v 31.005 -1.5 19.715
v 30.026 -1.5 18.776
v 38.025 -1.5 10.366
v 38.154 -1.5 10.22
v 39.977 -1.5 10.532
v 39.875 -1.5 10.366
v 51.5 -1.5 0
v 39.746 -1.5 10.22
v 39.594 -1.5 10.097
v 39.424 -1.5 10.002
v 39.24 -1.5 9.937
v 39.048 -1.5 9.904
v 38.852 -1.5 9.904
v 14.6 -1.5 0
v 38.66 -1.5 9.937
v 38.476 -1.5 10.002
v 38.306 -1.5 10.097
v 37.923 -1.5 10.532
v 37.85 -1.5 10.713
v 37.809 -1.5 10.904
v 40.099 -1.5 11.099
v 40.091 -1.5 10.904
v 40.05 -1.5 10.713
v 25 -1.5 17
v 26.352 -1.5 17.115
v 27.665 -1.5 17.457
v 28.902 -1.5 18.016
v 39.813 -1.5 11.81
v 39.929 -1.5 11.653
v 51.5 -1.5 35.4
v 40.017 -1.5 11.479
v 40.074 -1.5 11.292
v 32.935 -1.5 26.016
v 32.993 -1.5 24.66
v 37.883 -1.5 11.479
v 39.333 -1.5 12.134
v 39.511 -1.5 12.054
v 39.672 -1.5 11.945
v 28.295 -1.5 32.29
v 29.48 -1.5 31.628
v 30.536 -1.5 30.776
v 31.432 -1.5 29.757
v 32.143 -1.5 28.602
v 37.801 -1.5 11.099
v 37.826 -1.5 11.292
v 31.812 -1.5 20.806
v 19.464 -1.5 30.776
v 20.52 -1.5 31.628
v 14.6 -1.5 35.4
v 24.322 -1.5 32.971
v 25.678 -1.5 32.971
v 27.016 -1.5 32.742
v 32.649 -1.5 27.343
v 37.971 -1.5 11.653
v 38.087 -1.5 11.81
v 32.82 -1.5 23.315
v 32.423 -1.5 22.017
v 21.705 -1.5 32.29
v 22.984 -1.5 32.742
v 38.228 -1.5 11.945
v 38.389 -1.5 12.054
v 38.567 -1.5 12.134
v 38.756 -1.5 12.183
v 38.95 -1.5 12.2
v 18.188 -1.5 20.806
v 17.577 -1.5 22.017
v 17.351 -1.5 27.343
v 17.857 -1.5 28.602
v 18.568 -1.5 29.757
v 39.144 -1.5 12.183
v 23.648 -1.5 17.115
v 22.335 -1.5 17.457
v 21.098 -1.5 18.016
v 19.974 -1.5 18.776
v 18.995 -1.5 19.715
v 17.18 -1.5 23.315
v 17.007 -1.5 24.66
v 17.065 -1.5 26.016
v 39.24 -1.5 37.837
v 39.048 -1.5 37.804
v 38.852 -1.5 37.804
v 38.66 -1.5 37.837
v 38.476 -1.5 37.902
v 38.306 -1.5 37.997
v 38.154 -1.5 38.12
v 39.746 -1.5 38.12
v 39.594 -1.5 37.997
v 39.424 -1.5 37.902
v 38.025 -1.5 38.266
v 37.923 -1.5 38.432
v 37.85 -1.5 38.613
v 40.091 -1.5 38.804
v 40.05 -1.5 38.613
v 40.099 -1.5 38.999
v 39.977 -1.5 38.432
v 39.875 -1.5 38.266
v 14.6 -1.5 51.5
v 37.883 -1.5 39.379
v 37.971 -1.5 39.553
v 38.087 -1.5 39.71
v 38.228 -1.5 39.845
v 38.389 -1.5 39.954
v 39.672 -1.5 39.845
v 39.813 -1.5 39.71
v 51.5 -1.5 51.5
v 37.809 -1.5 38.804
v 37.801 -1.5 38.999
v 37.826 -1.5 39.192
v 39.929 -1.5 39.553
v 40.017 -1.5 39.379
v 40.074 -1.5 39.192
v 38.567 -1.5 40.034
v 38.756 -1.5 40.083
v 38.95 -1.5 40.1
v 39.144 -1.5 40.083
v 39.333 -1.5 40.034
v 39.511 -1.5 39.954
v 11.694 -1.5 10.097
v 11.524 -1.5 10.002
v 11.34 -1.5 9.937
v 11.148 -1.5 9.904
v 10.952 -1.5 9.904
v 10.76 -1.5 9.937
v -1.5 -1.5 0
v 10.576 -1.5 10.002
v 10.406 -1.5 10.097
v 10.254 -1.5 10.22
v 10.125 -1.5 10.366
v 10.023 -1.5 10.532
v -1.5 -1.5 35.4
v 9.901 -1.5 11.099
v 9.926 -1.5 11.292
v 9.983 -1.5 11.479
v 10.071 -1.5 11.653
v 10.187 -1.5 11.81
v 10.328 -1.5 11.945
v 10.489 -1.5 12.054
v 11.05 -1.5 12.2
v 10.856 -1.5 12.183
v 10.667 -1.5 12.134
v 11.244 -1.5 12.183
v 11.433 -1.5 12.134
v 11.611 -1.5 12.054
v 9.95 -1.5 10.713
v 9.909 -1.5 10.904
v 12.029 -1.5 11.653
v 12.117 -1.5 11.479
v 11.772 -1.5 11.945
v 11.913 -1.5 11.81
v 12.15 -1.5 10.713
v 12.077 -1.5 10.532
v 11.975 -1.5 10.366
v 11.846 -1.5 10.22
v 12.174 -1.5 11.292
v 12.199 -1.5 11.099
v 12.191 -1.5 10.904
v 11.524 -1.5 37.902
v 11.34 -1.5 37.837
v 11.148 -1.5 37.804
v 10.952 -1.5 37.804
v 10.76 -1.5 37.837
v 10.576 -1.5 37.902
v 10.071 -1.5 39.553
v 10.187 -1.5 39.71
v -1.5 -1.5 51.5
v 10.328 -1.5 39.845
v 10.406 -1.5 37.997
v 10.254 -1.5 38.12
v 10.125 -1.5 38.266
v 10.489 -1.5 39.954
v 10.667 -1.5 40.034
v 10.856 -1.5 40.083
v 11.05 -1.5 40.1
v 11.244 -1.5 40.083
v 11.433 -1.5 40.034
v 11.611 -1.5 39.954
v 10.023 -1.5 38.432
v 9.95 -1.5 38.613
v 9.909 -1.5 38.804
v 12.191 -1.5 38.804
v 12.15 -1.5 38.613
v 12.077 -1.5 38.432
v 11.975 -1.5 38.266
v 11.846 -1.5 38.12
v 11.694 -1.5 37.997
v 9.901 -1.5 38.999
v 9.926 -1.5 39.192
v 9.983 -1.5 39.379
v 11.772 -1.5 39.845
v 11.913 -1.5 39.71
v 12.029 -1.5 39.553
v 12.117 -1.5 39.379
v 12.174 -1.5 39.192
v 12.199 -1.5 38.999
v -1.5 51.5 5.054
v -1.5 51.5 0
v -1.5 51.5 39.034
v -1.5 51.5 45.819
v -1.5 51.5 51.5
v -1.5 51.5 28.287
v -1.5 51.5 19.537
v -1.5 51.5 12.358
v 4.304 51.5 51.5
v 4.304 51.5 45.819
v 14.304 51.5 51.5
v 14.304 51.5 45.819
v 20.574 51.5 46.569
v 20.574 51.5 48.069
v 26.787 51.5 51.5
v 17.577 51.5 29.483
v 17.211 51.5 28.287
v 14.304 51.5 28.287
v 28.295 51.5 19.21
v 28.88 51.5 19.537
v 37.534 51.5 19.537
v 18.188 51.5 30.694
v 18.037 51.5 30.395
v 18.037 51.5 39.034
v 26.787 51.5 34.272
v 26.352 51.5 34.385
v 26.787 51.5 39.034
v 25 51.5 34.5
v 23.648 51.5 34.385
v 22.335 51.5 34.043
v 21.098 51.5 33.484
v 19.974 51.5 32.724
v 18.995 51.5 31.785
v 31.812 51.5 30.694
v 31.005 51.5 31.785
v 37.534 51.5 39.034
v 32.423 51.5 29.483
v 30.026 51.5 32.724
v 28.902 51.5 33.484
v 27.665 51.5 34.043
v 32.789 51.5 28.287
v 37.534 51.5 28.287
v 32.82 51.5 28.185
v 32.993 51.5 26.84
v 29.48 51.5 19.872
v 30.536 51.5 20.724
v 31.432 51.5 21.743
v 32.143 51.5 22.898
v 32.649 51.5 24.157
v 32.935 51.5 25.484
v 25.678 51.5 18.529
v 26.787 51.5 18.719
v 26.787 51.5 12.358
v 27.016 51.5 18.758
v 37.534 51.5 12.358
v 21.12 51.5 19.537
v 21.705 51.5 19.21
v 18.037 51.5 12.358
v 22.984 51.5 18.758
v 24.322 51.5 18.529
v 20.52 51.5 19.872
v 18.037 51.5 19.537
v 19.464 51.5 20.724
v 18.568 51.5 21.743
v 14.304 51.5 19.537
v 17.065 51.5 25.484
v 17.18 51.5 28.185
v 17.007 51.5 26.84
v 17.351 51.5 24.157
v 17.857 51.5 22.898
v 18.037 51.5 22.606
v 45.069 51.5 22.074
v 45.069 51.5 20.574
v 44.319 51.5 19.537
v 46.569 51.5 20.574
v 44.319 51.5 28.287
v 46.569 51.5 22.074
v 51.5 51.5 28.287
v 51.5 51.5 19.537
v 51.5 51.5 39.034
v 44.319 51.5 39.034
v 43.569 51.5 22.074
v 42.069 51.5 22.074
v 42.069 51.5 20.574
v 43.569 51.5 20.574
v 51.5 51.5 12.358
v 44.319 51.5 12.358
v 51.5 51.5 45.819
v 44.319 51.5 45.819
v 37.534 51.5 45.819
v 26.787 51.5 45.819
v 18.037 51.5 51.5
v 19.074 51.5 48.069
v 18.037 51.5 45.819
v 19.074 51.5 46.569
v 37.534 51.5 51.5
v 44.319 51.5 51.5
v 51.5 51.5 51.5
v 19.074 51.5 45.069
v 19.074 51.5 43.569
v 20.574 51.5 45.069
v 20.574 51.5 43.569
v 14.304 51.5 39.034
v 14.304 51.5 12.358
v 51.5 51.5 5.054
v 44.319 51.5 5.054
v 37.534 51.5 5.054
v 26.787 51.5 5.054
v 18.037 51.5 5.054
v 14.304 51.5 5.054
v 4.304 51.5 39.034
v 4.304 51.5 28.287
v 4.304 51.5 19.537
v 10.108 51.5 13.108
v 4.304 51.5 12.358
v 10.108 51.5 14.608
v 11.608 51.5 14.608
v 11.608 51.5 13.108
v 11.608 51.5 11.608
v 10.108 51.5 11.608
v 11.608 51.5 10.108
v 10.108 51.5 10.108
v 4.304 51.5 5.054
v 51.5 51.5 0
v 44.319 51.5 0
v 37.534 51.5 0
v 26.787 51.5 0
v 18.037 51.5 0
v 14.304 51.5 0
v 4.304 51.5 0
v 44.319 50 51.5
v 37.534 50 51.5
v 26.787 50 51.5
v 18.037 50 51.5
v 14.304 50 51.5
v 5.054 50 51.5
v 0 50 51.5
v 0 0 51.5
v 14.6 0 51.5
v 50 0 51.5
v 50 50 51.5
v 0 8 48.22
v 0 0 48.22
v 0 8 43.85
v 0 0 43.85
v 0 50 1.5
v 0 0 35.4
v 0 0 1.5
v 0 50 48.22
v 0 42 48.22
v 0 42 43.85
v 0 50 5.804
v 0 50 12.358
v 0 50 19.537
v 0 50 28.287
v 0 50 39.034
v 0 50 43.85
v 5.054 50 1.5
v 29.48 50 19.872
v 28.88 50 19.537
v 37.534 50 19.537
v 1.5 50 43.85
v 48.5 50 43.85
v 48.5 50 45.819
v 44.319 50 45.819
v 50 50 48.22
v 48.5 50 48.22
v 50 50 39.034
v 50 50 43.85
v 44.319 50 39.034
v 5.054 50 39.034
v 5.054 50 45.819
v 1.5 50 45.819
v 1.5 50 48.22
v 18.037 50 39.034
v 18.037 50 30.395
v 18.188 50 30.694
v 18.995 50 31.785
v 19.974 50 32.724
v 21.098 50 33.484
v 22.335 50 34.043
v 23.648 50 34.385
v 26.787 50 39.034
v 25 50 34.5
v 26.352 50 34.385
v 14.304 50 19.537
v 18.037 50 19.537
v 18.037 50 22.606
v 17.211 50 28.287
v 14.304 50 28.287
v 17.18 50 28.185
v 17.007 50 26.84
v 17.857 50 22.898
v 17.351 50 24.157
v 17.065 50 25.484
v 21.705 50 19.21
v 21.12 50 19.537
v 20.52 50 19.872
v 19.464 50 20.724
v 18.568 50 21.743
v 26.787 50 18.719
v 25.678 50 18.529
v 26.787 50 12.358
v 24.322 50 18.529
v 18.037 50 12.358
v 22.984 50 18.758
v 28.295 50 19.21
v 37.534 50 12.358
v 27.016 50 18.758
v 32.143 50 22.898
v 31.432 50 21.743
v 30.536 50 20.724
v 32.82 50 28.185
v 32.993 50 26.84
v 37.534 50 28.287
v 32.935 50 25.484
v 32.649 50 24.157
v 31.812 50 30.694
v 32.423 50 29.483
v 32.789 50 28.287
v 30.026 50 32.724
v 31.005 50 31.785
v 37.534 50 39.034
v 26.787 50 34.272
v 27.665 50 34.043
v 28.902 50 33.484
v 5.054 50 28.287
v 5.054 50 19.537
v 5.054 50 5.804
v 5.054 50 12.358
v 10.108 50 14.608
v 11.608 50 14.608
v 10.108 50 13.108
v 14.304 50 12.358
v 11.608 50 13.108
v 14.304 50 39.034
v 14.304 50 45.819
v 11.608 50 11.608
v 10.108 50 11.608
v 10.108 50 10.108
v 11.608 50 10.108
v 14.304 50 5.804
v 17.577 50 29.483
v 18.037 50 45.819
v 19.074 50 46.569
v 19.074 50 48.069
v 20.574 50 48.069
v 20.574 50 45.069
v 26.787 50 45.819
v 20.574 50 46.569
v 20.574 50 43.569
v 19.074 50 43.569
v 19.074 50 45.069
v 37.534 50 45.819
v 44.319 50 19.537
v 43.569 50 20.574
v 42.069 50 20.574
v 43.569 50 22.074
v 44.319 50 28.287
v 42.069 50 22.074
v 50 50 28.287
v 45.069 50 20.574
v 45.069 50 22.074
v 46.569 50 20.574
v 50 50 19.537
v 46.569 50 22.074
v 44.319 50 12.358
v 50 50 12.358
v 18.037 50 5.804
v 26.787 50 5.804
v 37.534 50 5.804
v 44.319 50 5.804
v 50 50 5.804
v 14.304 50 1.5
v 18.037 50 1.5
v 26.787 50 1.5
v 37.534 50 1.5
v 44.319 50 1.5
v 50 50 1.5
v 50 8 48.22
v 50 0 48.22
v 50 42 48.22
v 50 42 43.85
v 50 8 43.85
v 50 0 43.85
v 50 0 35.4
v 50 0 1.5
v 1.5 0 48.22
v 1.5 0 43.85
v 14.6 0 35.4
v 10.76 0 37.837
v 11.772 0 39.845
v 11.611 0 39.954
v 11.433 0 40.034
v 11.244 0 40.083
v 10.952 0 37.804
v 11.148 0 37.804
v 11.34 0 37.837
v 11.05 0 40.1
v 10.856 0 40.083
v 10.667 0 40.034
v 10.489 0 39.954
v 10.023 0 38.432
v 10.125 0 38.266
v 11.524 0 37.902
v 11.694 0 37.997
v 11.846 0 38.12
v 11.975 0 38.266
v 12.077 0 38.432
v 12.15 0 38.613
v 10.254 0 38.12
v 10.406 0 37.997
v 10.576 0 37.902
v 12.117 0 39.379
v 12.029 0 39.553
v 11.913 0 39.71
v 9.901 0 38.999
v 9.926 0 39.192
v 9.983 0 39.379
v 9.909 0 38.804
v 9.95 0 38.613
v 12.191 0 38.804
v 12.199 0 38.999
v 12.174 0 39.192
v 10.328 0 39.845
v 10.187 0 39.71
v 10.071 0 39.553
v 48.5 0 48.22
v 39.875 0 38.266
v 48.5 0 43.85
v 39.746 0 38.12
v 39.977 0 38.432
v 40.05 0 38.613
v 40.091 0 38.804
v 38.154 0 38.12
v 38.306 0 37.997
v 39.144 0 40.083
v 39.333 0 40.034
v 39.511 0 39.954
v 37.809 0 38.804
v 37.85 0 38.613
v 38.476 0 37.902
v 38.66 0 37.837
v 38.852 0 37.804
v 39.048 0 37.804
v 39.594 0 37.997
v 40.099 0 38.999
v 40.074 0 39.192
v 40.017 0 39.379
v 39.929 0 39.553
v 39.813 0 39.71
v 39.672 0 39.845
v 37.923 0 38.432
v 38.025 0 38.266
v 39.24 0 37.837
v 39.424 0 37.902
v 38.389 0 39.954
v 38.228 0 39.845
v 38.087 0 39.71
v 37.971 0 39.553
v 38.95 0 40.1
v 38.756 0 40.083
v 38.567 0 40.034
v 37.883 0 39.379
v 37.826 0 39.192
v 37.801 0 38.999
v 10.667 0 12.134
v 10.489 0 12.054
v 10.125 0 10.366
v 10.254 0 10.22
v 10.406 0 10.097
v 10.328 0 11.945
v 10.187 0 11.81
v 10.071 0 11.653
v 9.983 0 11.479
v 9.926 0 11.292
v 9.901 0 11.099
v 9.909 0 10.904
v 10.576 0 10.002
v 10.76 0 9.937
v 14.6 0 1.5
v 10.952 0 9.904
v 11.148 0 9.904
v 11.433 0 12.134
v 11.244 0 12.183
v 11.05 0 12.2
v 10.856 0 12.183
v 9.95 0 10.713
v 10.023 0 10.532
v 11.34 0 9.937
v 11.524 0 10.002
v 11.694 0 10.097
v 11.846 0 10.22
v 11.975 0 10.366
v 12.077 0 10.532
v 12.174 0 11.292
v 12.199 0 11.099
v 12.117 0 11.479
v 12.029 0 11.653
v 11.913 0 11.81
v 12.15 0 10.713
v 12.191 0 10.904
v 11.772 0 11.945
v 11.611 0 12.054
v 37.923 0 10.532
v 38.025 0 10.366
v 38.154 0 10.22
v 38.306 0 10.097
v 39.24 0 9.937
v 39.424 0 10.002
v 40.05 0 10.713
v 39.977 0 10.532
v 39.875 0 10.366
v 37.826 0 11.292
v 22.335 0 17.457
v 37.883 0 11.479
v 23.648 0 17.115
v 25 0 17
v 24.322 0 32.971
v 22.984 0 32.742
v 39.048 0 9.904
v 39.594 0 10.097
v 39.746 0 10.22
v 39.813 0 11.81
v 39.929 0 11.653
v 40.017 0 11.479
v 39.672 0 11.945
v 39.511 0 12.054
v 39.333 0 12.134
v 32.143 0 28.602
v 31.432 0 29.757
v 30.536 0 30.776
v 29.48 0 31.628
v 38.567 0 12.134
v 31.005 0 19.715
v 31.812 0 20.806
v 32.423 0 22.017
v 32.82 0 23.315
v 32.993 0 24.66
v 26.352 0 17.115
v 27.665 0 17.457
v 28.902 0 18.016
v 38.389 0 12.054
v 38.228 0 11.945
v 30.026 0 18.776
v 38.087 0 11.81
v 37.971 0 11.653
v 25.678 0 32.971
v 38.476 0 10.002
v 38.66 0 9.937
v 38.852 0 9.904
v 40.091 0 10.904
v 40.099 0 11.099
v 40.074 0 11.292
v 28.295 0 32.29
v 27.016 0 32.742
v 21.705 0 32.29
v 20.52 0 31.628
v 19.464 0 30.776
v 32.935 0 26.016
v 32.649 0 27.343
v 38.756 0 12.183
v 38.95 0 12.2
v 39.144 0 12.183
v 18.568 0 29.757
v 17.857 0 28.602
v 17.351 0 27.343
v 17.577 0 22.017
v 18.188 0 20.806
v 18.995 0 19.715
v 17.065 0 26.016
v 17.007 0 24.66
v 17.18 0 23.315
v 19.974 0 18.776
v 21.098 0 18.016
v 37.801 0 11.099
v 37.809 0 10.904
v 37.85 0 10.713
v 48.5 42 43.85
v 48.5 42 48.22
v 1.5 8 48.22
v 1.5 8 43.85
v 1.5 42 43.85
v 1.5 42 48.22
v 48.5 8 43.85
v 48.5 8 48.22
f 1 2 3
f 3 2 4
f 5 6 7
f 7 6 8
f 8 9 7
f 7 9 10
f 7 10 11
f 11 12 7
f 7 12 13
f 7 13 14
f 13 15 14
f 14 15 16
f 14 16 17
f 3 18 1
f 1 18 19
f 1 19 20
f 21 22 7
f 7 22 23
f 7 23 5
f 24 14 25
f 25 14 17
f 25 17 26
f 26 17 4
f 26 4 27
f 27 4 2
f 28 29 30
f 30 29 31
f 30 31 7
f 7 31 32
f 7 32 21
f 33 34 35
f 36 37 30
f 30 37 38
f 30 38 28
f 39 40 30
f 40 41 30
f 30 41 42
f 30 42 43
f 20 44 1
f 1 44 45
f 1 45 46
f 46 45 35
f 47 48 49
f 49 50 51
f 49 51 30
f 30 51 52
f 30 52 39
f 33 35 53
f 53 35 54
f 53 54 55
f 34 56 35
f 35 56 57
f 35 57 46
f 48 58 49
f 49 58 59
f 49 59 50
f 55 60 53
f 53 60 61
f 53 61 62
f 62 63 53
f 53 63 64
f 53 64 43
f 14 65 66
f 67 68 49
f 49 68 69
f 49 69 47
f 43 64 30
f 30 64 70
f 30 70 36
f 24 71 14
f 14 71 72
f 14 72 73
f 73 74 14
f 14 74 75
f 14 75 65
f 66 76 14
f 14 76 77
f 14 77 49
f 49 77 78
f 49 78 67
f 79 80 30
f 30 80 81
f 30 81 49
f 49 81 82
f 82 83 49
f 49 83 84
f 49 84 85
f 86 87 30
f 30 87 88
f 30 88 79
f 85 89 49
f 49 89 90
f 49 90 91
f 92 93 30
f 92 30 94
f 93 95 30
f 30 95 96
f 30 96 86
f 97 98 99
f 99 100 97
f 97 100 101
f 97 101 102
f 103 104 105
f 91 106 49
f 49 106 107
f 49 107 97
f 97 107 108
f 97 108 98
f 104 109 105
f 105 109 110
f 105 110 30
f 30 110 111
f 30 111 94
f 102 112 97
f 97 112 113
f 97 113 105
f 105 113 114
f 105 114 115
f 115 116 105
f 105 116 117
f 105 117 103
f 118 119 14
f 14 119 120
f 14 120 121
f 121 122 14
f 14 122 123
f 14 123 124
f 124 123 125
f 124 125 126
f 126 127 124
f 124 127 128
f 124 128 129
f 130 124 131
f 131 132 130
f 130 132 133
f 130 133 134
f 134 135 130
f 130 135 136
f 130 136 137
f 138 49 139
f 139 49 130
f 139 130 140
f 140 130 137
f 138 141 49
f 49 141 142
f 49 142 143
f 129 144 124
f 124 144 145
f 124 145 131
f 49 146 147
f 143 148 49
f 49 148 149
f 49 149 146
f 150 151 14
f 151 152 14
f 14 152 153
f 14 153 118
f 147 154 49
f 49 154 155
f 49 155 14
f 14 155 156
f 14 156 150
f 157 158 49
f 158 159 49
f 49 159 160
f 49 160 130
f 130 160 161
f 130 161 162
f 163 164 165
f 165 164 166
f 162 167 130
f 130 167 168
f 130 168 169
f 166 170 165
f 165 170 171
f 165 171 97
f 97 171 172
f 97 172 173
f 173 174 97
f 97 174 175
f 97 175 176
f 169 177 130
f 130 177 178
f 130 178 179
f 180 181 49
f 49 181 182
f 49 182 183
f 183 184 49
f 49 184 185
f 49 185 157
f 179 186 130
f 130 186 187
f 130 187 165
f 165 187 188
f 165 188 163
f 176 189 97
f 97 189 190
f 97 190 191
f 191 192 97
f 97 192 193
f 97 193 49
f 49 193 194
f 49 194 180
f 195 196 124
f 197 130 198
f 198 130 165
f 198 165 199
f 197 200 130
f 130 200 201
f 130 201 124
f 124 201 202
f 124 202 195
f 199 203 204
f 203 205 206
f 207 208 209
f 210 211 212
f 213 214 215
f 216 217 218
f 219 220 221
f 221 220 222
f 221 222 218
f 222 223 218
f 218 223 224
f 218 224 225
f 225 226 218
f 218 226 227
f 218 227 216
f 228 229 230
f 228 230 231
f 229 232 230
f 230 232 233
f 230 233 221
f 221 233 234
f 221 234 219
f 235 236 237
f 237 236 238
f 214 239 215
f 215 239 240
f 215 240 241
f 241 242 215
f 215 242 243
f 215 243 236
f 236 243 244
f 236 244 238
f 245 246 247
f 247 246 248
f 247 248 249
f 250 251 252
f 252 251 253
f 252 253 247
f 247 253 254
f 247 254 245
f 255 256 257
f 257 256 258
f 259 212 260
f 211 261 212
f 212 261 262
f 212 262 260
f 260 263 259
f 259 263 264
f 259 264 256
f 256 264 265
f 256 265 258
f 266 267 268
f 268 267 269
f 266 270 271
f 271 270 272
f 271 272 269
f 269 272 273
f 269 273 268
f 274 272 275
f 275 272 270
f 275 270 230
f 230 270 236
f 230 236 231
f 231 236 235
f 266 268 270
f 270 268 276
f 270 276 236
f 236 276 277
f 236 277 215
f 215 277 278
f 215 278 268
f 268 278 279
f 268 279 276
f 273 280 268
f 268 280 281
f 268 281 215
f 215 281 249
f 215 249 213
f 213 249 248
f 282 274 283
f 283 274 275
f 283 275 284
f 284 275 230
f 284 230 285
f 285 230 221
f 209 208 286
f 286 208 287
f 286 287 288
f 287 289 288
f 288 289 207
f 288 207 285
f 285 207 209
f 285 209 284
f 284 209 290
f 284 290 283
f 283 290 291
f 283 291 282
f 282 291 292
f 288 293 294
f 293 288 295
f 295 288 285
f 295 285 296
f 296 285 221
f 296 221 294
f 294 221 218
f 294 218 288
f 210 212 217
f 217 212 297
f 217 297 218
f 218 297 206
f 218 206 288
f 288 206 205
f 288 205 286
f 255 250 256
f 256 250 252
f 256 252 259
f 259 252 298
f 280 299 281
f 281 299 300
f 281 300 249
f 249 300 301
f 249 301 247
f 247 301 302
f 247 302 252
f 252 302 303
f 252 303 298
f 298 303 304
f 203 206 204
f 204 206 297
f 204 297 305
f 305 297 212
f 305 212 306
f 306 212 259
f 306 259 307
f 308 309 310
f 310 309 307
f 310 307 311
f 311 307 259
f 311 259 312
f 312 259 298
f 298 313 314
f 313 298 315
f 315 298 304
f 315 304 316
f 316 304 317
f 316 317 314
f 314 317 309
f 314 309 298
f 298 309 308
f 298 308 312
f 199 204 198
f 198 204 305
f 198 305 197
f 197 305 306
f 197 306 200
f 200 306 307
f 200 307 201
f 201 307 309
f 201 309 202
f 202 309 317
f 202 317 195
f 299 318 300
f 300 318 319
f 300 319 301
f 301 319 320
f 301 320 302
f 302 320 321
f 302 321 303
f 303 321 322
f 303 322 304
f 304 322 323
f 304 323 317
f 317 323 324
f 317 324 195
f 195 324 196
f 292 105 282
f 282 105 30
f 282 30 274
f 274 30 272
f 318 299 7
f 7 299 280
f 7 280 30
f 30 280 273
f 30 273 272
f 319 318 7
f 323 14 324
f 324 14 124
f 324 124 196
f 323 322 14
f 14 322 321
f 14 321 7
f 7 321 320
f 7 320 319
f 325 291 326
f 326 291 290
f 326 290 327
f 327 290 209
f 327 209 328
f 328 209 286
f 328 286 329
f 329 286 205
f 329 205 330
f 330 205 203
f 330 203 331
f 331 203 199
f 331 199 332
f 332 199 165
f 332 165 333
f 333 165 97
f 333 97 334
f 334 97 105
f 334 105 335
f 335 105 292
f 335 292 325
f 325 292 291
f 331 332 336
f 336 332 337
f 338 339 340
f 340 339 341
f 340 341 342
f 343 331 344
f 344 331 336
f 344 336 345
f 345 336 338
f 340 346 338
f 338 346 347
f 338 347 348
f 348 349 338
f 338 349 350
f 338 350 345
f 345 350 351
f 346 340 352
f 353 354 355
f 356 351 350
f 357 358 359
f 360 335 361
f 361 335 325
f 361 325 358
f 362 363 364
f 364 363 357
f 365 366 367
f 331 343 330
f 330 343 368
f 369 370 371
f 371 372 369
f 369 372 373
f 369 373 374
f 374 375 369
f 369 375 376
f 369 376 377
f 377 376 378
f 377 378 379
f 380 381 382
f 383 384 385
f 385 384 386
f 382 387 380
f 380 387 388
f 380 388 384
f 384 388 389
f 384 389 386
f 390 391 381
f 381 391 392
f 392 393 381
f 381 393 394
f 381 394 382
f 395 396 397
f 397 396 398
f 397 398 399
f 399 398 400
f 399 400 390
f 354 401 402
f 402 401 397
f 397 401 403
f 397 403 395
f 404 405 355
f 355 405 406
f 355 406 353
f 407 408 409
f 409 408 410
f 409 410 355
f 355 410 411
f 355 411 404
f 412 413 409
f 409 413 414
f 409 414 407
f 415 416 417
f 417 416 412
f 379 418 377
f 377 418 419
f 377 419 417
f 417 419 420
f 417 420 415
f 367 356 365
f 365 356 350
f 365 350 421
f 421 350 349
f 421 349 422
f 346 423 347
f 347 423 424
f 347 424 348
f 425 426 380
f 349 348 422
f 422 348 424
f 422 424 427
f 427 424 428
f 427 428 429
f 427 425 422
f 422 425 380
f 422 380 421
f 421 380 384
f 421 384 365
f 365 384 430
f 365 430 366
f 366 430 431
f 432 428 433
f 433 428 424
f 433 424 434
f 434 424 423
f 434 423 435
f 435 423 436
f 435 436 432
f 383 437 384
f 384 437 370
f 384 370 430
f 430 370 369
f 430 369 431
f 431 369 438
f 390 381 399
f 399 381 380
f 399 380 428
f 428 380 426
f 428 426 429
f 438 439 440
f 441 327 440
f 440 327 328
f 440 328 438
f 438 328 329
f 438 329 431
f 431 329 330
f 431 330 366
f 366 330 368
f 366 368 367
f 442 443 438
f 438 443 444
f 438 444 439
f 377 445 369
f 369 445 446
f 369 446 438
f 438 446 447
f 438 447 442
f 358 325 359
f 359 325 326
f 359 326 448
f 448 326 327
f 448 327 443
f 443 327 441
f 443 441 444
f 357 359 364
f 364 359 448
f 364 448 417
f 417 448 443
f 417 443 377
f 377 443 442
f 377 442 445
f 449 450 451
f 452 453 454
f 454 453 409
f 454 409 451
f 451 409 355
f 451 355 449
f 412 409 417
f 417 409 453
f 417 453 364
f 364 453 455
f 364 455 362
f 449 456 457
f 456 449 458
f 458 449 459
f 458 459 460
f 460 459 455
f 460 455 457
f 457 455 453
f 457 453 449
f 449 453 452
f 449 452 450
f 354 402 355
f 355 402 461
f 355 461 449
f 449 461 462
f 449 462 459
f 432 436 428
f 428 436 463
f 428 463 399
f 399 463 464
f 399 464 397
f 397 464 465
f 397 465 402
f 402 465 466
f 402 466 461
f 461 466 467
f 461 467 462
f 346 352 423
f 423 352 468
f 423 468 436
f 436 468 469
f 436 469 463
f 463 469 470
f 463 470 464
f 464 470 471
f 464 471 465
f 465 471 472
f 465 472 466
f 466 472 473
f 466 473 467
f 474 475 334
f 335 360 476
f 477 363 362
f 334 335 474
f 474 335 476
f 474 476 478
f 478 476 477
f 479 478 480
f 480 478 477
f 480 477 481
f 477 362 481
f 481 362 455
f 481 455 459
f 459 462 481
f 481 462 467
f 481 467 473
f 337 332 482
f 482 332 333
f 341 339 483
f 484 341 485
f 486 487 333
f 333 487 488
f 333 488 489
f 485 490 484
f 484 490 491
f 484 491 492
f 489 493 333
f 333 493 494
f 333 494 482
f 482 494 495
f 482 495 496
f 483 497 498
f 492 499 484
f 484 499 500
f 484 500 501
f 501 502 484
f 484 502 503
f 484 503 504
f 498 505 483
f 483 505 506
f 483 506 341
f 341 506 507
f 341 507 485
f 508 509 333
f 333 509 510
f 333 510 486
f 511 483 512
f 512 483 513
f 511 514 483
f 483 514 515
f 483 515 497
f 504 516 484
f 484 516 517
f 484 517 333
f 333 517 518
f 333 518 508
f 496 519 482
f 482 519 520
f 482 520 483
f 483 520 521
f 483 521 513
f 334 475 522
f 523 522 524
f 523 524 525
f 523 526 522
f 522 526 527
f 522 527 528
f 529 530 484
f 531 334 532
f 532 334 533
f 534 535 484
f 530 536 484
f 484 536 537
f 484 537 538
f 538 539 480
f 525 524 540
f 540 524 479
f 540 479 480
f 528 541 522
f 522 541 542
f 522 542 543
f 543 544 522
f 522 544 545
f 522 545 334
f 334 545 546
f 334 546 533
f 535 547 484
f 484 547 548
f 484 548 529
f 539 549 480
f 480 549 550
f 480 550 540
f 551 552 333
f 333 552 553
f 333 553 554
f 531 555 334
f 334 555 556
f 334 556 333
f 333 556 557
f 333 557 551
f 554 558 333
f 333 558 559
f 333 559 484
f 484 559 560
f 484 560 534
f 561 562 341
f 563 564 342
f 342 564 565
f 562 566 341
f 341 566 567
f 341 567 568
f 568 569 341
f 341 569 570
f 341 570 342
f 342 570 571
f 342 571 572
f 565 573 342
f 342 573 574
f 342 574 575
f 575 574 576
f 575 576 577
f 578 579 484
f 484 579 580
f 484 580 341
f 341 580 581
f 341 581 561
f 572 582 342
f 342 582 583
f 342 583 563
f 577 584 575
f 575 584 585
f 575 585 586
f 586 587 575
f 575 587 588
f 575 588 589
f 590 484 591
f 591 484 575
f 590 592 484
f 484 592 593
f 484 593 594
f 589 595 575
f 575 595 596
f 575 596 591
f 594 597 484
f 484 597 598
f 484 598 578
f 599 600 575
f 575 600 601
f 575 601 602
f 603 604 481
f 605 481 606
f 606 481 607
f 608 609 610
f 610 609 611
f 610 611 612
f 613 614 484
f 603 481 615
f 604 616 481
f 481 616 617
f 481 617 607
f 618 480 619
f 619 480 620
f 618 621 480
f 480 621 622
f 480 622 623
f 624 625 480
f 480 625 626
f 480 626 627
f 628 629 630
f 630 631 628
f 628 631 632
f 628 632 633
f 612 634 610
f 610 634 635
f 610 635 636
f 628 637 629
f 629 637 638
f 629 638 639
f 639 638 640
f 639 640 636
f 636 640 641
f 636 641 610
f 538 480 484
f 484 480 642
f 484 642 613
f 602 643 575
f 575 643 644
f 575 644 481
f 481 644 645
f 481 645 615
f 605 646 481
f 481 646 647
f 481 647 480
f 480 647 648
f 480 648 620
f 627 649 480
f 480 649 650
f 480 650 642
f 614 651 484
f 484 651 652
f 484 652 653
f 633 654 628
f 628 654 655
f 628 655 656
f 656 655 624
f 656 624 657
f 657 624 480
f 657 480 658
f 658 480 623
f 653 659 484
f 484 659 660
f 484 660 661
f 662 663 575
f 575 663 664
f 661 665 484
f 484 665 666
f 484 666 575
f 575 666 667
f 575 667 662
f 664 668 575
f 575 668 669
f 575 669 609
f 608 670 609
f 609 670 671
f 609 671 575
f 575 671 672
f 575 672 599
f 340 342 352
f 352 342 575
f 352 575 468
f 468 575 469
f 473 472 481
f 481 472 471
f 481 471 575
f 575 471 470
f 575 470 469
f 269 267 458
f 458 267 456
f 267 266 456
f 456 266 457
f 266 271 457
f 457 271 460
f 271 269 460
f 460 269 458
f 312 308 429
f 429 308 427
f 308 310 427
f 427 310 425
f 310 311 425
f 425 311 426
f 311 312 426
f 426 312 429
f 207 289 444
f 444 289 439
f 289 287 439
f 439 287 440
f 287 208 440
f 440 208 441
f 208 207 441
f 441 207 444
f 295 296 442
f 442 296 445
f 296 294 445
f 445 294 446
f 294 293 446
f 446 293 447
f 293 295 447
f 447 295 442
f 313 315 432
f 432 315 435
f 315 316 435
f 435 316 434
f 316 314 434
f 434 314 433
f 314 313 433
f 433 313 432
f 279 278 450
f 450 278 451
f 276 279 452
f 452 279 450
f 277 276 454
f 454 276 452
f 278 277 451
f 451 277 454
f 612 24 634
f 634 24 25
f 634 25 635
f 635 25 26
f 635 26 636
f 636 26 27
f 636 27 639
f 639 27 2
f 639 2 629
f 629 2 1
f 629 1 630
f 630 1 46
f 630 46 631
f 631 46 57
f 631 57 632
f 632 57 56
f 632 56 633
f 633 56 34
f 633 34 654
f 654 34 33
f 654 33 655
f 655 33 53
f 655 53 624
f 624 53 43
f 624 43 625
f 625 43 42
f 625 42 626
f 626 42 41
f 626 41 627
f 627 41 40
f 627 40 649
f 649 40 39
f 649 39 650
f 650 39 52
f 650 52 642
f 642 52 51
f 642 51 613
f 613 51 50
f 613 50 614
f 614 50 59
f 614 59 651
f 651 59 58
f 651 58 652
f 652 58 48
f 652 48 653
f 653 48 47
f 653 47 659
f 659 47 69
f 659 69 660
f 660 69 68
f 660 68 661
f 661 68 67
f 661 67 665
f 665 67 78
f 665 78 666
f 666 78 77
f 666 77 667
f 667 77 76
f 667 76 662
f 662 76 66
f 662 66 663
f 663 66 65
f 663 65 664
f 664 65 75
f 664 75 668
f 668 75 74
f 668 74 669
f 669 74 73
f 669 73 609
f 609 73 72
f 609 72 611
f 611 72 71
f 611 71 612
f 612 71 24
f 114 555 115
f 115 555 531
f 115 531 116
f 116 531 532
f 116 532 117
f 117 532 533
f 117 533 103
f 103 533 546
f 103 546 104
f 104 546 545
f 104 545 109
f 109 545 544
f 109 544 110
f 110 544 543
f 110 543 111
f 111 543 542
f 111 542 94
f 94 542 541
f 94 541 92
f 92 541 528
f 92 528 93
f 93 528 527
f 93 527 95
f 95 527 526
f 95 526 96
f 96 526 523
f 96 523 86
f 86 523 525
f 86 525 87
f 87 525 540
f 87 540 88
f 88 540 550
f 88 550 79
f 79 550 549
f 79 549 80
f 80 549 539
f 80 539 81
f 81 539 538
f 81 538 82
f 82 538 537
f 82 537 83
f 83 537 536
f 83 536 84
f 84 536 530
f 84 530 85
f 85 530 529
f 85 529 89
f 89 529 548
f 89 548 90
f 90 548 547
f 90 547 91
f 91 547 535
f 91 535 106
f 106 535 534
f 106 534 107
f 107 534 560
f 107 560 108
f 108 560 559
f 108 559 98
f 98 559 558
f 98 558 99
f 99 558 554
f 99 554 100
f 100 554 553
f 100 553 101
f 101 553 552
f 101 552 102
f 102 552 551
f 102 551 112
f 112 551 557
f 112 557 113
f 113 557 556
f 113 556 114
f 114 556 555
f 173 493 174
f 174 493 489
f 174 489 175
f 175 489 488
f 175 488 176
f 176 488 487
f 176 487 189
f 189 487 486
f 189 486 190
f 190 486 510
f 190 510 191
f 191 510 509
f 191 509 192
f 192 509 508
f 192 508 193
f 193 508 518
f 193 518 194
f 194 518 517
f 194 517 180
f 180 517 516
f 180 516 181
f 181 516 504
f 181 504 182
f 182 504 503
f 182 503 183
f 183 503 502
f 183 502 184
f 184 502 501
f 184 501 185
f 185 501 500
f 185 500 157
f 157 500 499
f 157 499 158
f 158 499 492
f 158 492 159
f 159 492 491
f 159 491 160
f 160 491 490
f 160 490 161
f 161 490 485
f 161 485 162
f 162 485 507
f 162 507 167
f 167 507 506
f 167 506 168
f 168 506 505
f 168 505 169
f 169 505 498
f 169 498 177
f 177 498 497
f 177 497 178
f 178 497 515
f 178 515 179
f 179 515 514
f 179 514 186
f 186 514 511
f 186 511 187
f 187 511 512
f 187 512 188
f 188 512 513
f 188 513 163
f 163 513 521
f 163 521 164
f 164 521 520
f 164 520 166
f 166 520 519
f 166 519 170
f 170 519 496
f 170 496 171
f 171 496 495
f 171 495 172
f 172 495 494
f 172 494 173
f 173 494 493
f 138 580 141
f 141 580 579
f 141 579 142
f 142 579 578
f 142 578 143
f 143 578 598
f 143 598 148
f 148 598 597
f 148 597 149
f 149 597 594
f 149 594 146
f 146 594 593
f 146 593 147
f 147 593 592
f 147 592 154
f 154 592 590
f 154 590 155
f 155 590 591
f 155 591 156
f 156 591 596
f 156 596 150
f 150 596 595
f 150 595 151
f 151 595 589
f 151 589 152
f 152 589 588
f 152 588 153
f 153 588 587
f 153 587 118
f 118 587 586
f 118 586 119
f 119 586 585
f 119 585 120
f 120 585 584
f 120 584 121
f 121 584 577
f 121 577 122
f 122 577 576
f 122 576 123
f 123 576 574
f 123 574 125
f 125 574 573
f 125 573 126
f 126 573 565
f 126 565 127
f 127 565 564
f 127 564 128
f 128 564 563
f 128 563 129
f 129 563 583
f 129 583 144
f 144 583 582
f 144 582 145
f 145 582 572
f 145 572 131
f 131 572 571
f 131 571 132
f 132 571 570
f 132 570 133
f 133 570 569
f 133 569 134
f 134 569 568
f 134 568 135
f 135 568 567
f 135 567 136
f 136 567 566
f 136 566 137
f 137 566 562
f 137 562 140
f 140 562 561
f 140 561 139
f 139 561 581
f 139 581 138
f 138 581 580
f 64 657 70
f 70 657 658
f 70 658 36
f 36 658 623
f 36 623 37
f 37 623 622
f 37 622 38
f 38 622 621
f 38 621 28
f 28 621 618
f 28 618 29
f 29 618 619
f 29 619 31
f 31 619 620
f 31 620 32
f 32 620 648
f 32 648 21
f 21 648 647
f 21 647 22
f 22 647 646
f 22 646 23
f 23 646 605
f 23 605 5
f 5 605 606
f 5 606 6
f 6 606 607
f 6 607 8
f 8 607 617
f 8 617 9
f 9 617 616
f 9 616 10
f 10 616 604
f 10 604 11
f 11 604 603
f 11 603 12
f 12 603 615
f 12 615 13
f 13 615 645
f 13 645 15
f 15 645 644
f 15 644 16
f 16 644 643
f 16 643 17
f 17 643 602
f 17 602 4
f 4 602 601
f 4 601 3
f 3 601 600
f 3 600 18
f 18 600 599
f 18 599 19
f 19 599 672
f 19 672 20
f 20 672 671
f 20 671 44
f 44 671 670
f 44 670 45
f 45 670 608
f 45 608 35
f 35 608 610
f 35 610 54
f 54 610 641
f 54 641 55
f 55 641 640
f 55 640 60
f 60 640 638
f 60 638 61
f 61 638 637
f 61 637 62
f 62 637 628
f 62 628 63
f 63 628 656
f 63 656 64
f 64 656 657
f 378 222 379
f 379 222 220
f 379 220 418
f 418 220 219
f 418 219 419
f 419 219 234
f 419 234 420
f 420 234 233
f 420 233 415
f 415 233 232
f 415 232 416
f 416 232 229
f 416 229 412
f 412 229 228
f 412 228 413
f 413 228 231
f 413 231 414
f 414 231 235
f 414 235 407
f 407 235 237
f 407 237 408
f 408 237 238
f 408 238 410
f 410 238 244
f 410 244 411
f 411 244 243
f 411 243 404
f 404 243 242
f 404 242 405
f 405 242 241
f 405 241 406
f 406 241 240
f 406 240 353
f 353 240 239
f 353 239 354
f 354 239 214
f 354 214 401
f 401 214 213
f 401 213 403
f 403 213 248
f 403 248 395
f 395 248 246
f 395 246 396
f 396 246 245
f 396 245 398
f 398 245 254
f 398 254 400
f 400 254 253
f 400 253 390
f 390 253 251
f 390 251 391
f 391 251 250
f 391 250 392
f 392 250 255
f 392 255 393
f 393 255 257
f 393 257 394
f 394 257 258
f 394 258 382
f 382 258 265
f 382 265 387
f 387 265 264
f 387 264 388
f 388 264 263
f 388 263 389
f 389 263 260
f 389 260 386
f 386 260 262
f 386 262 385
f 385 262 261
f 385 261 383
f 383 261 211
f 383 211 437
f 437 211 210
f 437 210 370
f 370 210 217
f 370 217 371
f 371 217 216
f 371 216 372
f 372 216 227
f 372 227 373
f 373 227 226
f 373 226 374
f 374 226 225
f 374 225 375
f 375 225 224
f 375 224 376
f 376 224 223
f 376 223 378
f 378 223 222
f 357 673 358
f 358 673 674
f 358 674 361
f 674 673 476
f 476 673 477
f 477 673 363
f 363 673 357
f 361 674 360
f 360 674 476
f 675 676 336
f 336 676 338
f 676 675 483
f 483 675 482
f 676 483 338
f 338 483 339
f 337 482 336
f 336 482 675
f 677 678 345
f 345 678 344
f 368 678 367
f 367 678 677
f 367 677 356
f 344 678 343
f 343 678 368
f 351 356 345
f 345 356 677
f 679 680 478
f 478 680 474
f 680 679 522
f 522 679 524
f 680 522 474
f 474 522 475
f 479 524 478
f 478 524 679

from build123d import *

# Parameters (mm, degrees)
SKETCH1_W                      = 53
SKETCH1_H                      = 53
BOSS_EXTRUDE1_DEPTH            = 51.5
SKETCH2_W                      = 50
SKETCH2_H                      = 50
CUT_EXTRUDE1_DEPTH             = 50
SKETCH3_W                      = 1.5
SKETCH3_H                      = 1.5
CUT_EXTRUDE2_DEPTH             = 90.20061659
SKETCH4_W                      = 1.5
SKETCH4_H                      = 1.5
CUT_EXTRUDE3_DEPTH             = 90.20061659
SKETCH5_W                      = 1.5
SKETCH5_H                      = 1.5
CUT_EXTRUDE4_DEPTH             = 90.20061659
SKETCH6_W                      = 1.5
SKETCH6_H                      = 1.5
CUT_EXTRUDE5_DEPTH             = 90.20061659
SKETCH7_W                      = 1.5
SKETCH7_H                      = 1.5
CUT_EXTRUDE6_DEPTH             = 90.20061659
CUT_EXTRUDE7_REACH             = 92.075
SKETCH8_W                      = 1.5
SKETCH8_H                      = 1.5
F_16_0_16_DIAMETER_HOLE1_D     = 16
F_16_0_16_DIAMETER_HOLE1_DEPTH = 1.5
F_2_3_2_3_DIAMETER_HOLE1_D     = 2.3
F_2_3_2_3_DIAMETER_HOLE1_DEPTH = 1.5
F_16_0_16_DIAMETER_HOLE2_D     = 16
F_16_0_16_DIAMETER_HOLE2_DEPTH = 1.5
RIB1_START                     = -2.185
RIB1_OUTLINE_W                 = 1.5
RIB1_OUTLINE_H                 = 8
RIB1_DEPTH                     = 4.37
RIB2_START                     = -2.185
RIB2_OUTLINE_W                 = 1.5
RIB2_OUTLINE_H                 = 8
RIB2_DEPTH                     = 4.37
RIB3_START                     = -2.185
RIB3_OUTLINE_W                 = 1.5
RIB3_OUTLINE_H                 = 8
RIB3_DEPTH                     = 4.37
RIB4_START                     = -2.185
RIB4_OUTLINE_W                 = 1.5
RIB4_OUTLINE_H                 = 8
RIB4_DEPTH                     = 4.37


# Read off the part's stored shape, not the designer's step: Rib1, Rib2, Rib3, Rib4
with BuildPart() as part:
    # Sketch1 → Boss-Extrude1 (new body)
    with BuildSketch(Plane.XY.offset(51.5)):
        with Locations((25, 25)):
            Rectangle(SKETCH1_W, SKETCH1_H)
    extrude(amount=-BOSS_EXTRUDE1_DEPTH)

    # Sketch2 → Cut-Extrude1 (cut)
    with BuildSketch(Plane.XY.offset(51.5)):
        with Locations((25, 25)):
            Rectangle(SKETCH2_W, SKETCH2_H)
    extrude(amount=-CUT_EXTRUDE1_DEPTH, mode=Mode.SUBTRACT)

    # Sketch3 → Cut-Extrude2 (cut, through all)
    with BuildSketch(Plane.XZ.offset(-50)):
        with Locations((45.818516526, 21.323619098)):
            Rectangle(SKETCH3_W, SKETCH3_H)
    extrude(amount=-CUT_EXTRUDE2_DEPTH, mode=Mode.SUBTRACT)

    # Sketch4 → Cut-Extrude3 (cut, through all)
    with BuildSketch(Plane.XZ.offset(-50)):
        with Locations((10.857864376, 13.857864376)):
            Rectangle(SKETCH4_W, SKETCH4_H)
    extrude(amount=-CUT_EXTRUDE3_DEPTH, mode=Mode.SUBTRACT)

    # Sketch5 → Cut-Extrude4 (cut, through all)
    with BuildSketch(Plane.XZ.offset(-50)):
        with Locations((19.823619098, 47.318516526)):
            Rectangle(SKETCH5_W, SKETCH5_H)
    extrude(amount=-CUT_EXTRUDE4_DEPTH, mode=Mode.SUBTRACT)

    # Sketch6 → Cut-Extrude5 (cut, through all)
    with BuildSketch(Plane.XZ.offset(-50)):
        with Locations((19.823619098, 44.318516526)):
            Rectangle(SKETCH6_W, SKETCH6_H)
    extrude(amount=-CUT_EXTRUDE5_DEPTH, mode=Mode.SUBTRACT)

    # Sketch7 → Cut-Extrude6 (cut, through all)
    with BuildSketch(Plane.XZ.offset(-50)):
        with Locations((10.857864376, 10.857864376)):
            Rectangle(SKETCH7_W, SKETCH7_H)
    extrude(amount=-CUT_EXTRUDE6_DEPTH, mode=Mode.SUBTRACT)

    # Sketch8 → Cut-Extrude7 (cut, up to next)
    with BuildSketch(Plane(origin=(0, 51.5, 0), x_dir=(-1, 0, 0), z_dir=(0, 1, 0)), mode=Mode.PRIVATE) as cut_extrude7_sk1:
        with Locations((-42.818516526, 21.323619098)):
            Rectangle(SKETCH8_W, SKETCH8_H)
    cut_extrude7_tool1 = extrude(cut_extrude7_sk1.sketch, amount=-CUT_EXTRUDE7_REACH, mode=Mode.PRIVATE) & part.part
    add(cut_extrude7_tool1.solids().sort_by_distance((42.818517, 51.5, 21.323619))[0], mode=Mode.SUBTRACT)

    # Ø16.0 (16) Diameter Hole1
    with Locations(Plane(origin=(0, -1.5, 0), x_dir=(-1, 0, 0), z_dir=(0, -1, 0))):
        with Locations((-25, -25)):
            Hole(F_16_0_16_DIAMETER_HOLE1_D / 2, depth=F_16_0_16_DIAMETER_HOLE1_DEPTH)

    # Ø2.3 (2.3) Diameter Hole1
    with Locations(Plane(origin=(0, 0, 0), x_dir=(1, 0, 0), z_dir=(0, 1, 0))):
        with Locations((38.95, -11.05), (11.05, -11.05), (11.05, -38.95), (38.95, -38.95)):
            Hole(F_2_3_2_3_DIAMETER_HOLE1_D / 2, depth=F_2_3_2_3_DIAMETER_HOLE1_DEPTH)

    # Ø16.0 (16) Diameter Hole2
    with Locations(Plane(origin=(0, 51.5, 0), x_dir=(1, 0, 0), z_dir=(0, 1, 0))):
        with Locations((25, -26.5)):
            Hole(F_16_0_16_DIAMETER_HOLE2_D / 2, depth=F_16_0_16_DIAMETER_HOLE2_DEPTH)

    # Rib1 outline → Rib1 (add)
    with BuildSketch(Plane(origin=(0, 0, 46.035), x_dir=(-1, 0, 0), z_dir=(0, 0, -1)).offset(RIB1_START)):
        with Locations((-49.25, 46)):
            Rectangle(RIB1_OUTLINE_W, RIB1_OUTLINE_H)
    extrude(amount=RIB1_DEPTH)

    # Rib2 outline → Rib2 (add)
    with BuildSketch(Plane(origin=(0, 0, 46.035), x_dir=(-1, 0, 0), z_dir=(0, 0, -1)).offset(RIB2_START)):
        with Locations((-0.75, 4)):
            Rectangle(RIB2_OUTLINE_W, RIB2_OUTLINE_H)
    extrude(amount=RIB2_DEPTH)

    # Rib3 outline → Rib3 (add)
    with BuildSketch(Plane.XY.offset(46.035).offset(RIB3_START)):
        with Locations((0.75, 46)):
            Rectangle(RIB3_OUTLINE_W, RIB3_OUTLINE_H)
    extrude(amount=RIB3_DEPTH)

    # Rib4 outline → Rib4 (add)
    with BuildSketch(Plane.XY.offset(46.035).offset(RIB4_START)):
        with Locations((49.25, 4)):
            Rectangle(RIB4_OUTLINE_W, RIB4_OUTLINE_H)
    extrude(amount=RIB4_DEPTH)


solid = part.part
